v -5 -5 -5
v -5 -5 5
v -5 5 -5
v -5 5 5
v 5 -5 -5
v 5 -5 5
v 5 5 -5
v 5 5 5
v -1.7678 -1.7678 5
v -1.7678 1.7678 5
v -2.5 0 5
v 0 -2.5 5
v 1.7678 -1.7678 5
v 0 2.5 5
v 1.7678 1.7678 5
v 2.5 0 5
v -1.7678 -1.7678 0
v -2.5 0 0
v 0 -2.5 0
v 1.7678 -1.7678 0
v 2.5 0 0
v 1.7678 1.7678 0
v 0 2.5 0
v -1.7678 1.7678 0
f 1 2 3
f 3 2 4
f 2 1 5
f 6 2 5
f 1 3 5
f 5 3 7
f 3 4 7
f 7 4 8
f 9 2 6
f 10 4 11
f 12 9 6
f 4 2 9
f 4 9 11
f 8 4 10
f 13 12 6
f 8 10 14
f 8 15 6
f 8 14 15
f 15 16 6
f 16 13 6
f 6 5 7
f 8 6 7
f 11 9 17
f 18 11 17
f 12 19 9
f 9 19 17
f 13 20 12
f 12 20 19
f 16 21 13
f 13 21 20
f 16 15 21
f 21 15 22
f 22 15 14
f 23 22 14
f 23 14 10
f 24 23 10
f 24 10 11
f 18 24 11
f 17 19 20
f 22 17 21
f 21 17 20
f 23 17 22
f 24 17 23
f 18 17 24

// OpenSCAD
difference() {
	cube(size = 10, center = true);
	cylinder(h = 10, r=2.5);
}
